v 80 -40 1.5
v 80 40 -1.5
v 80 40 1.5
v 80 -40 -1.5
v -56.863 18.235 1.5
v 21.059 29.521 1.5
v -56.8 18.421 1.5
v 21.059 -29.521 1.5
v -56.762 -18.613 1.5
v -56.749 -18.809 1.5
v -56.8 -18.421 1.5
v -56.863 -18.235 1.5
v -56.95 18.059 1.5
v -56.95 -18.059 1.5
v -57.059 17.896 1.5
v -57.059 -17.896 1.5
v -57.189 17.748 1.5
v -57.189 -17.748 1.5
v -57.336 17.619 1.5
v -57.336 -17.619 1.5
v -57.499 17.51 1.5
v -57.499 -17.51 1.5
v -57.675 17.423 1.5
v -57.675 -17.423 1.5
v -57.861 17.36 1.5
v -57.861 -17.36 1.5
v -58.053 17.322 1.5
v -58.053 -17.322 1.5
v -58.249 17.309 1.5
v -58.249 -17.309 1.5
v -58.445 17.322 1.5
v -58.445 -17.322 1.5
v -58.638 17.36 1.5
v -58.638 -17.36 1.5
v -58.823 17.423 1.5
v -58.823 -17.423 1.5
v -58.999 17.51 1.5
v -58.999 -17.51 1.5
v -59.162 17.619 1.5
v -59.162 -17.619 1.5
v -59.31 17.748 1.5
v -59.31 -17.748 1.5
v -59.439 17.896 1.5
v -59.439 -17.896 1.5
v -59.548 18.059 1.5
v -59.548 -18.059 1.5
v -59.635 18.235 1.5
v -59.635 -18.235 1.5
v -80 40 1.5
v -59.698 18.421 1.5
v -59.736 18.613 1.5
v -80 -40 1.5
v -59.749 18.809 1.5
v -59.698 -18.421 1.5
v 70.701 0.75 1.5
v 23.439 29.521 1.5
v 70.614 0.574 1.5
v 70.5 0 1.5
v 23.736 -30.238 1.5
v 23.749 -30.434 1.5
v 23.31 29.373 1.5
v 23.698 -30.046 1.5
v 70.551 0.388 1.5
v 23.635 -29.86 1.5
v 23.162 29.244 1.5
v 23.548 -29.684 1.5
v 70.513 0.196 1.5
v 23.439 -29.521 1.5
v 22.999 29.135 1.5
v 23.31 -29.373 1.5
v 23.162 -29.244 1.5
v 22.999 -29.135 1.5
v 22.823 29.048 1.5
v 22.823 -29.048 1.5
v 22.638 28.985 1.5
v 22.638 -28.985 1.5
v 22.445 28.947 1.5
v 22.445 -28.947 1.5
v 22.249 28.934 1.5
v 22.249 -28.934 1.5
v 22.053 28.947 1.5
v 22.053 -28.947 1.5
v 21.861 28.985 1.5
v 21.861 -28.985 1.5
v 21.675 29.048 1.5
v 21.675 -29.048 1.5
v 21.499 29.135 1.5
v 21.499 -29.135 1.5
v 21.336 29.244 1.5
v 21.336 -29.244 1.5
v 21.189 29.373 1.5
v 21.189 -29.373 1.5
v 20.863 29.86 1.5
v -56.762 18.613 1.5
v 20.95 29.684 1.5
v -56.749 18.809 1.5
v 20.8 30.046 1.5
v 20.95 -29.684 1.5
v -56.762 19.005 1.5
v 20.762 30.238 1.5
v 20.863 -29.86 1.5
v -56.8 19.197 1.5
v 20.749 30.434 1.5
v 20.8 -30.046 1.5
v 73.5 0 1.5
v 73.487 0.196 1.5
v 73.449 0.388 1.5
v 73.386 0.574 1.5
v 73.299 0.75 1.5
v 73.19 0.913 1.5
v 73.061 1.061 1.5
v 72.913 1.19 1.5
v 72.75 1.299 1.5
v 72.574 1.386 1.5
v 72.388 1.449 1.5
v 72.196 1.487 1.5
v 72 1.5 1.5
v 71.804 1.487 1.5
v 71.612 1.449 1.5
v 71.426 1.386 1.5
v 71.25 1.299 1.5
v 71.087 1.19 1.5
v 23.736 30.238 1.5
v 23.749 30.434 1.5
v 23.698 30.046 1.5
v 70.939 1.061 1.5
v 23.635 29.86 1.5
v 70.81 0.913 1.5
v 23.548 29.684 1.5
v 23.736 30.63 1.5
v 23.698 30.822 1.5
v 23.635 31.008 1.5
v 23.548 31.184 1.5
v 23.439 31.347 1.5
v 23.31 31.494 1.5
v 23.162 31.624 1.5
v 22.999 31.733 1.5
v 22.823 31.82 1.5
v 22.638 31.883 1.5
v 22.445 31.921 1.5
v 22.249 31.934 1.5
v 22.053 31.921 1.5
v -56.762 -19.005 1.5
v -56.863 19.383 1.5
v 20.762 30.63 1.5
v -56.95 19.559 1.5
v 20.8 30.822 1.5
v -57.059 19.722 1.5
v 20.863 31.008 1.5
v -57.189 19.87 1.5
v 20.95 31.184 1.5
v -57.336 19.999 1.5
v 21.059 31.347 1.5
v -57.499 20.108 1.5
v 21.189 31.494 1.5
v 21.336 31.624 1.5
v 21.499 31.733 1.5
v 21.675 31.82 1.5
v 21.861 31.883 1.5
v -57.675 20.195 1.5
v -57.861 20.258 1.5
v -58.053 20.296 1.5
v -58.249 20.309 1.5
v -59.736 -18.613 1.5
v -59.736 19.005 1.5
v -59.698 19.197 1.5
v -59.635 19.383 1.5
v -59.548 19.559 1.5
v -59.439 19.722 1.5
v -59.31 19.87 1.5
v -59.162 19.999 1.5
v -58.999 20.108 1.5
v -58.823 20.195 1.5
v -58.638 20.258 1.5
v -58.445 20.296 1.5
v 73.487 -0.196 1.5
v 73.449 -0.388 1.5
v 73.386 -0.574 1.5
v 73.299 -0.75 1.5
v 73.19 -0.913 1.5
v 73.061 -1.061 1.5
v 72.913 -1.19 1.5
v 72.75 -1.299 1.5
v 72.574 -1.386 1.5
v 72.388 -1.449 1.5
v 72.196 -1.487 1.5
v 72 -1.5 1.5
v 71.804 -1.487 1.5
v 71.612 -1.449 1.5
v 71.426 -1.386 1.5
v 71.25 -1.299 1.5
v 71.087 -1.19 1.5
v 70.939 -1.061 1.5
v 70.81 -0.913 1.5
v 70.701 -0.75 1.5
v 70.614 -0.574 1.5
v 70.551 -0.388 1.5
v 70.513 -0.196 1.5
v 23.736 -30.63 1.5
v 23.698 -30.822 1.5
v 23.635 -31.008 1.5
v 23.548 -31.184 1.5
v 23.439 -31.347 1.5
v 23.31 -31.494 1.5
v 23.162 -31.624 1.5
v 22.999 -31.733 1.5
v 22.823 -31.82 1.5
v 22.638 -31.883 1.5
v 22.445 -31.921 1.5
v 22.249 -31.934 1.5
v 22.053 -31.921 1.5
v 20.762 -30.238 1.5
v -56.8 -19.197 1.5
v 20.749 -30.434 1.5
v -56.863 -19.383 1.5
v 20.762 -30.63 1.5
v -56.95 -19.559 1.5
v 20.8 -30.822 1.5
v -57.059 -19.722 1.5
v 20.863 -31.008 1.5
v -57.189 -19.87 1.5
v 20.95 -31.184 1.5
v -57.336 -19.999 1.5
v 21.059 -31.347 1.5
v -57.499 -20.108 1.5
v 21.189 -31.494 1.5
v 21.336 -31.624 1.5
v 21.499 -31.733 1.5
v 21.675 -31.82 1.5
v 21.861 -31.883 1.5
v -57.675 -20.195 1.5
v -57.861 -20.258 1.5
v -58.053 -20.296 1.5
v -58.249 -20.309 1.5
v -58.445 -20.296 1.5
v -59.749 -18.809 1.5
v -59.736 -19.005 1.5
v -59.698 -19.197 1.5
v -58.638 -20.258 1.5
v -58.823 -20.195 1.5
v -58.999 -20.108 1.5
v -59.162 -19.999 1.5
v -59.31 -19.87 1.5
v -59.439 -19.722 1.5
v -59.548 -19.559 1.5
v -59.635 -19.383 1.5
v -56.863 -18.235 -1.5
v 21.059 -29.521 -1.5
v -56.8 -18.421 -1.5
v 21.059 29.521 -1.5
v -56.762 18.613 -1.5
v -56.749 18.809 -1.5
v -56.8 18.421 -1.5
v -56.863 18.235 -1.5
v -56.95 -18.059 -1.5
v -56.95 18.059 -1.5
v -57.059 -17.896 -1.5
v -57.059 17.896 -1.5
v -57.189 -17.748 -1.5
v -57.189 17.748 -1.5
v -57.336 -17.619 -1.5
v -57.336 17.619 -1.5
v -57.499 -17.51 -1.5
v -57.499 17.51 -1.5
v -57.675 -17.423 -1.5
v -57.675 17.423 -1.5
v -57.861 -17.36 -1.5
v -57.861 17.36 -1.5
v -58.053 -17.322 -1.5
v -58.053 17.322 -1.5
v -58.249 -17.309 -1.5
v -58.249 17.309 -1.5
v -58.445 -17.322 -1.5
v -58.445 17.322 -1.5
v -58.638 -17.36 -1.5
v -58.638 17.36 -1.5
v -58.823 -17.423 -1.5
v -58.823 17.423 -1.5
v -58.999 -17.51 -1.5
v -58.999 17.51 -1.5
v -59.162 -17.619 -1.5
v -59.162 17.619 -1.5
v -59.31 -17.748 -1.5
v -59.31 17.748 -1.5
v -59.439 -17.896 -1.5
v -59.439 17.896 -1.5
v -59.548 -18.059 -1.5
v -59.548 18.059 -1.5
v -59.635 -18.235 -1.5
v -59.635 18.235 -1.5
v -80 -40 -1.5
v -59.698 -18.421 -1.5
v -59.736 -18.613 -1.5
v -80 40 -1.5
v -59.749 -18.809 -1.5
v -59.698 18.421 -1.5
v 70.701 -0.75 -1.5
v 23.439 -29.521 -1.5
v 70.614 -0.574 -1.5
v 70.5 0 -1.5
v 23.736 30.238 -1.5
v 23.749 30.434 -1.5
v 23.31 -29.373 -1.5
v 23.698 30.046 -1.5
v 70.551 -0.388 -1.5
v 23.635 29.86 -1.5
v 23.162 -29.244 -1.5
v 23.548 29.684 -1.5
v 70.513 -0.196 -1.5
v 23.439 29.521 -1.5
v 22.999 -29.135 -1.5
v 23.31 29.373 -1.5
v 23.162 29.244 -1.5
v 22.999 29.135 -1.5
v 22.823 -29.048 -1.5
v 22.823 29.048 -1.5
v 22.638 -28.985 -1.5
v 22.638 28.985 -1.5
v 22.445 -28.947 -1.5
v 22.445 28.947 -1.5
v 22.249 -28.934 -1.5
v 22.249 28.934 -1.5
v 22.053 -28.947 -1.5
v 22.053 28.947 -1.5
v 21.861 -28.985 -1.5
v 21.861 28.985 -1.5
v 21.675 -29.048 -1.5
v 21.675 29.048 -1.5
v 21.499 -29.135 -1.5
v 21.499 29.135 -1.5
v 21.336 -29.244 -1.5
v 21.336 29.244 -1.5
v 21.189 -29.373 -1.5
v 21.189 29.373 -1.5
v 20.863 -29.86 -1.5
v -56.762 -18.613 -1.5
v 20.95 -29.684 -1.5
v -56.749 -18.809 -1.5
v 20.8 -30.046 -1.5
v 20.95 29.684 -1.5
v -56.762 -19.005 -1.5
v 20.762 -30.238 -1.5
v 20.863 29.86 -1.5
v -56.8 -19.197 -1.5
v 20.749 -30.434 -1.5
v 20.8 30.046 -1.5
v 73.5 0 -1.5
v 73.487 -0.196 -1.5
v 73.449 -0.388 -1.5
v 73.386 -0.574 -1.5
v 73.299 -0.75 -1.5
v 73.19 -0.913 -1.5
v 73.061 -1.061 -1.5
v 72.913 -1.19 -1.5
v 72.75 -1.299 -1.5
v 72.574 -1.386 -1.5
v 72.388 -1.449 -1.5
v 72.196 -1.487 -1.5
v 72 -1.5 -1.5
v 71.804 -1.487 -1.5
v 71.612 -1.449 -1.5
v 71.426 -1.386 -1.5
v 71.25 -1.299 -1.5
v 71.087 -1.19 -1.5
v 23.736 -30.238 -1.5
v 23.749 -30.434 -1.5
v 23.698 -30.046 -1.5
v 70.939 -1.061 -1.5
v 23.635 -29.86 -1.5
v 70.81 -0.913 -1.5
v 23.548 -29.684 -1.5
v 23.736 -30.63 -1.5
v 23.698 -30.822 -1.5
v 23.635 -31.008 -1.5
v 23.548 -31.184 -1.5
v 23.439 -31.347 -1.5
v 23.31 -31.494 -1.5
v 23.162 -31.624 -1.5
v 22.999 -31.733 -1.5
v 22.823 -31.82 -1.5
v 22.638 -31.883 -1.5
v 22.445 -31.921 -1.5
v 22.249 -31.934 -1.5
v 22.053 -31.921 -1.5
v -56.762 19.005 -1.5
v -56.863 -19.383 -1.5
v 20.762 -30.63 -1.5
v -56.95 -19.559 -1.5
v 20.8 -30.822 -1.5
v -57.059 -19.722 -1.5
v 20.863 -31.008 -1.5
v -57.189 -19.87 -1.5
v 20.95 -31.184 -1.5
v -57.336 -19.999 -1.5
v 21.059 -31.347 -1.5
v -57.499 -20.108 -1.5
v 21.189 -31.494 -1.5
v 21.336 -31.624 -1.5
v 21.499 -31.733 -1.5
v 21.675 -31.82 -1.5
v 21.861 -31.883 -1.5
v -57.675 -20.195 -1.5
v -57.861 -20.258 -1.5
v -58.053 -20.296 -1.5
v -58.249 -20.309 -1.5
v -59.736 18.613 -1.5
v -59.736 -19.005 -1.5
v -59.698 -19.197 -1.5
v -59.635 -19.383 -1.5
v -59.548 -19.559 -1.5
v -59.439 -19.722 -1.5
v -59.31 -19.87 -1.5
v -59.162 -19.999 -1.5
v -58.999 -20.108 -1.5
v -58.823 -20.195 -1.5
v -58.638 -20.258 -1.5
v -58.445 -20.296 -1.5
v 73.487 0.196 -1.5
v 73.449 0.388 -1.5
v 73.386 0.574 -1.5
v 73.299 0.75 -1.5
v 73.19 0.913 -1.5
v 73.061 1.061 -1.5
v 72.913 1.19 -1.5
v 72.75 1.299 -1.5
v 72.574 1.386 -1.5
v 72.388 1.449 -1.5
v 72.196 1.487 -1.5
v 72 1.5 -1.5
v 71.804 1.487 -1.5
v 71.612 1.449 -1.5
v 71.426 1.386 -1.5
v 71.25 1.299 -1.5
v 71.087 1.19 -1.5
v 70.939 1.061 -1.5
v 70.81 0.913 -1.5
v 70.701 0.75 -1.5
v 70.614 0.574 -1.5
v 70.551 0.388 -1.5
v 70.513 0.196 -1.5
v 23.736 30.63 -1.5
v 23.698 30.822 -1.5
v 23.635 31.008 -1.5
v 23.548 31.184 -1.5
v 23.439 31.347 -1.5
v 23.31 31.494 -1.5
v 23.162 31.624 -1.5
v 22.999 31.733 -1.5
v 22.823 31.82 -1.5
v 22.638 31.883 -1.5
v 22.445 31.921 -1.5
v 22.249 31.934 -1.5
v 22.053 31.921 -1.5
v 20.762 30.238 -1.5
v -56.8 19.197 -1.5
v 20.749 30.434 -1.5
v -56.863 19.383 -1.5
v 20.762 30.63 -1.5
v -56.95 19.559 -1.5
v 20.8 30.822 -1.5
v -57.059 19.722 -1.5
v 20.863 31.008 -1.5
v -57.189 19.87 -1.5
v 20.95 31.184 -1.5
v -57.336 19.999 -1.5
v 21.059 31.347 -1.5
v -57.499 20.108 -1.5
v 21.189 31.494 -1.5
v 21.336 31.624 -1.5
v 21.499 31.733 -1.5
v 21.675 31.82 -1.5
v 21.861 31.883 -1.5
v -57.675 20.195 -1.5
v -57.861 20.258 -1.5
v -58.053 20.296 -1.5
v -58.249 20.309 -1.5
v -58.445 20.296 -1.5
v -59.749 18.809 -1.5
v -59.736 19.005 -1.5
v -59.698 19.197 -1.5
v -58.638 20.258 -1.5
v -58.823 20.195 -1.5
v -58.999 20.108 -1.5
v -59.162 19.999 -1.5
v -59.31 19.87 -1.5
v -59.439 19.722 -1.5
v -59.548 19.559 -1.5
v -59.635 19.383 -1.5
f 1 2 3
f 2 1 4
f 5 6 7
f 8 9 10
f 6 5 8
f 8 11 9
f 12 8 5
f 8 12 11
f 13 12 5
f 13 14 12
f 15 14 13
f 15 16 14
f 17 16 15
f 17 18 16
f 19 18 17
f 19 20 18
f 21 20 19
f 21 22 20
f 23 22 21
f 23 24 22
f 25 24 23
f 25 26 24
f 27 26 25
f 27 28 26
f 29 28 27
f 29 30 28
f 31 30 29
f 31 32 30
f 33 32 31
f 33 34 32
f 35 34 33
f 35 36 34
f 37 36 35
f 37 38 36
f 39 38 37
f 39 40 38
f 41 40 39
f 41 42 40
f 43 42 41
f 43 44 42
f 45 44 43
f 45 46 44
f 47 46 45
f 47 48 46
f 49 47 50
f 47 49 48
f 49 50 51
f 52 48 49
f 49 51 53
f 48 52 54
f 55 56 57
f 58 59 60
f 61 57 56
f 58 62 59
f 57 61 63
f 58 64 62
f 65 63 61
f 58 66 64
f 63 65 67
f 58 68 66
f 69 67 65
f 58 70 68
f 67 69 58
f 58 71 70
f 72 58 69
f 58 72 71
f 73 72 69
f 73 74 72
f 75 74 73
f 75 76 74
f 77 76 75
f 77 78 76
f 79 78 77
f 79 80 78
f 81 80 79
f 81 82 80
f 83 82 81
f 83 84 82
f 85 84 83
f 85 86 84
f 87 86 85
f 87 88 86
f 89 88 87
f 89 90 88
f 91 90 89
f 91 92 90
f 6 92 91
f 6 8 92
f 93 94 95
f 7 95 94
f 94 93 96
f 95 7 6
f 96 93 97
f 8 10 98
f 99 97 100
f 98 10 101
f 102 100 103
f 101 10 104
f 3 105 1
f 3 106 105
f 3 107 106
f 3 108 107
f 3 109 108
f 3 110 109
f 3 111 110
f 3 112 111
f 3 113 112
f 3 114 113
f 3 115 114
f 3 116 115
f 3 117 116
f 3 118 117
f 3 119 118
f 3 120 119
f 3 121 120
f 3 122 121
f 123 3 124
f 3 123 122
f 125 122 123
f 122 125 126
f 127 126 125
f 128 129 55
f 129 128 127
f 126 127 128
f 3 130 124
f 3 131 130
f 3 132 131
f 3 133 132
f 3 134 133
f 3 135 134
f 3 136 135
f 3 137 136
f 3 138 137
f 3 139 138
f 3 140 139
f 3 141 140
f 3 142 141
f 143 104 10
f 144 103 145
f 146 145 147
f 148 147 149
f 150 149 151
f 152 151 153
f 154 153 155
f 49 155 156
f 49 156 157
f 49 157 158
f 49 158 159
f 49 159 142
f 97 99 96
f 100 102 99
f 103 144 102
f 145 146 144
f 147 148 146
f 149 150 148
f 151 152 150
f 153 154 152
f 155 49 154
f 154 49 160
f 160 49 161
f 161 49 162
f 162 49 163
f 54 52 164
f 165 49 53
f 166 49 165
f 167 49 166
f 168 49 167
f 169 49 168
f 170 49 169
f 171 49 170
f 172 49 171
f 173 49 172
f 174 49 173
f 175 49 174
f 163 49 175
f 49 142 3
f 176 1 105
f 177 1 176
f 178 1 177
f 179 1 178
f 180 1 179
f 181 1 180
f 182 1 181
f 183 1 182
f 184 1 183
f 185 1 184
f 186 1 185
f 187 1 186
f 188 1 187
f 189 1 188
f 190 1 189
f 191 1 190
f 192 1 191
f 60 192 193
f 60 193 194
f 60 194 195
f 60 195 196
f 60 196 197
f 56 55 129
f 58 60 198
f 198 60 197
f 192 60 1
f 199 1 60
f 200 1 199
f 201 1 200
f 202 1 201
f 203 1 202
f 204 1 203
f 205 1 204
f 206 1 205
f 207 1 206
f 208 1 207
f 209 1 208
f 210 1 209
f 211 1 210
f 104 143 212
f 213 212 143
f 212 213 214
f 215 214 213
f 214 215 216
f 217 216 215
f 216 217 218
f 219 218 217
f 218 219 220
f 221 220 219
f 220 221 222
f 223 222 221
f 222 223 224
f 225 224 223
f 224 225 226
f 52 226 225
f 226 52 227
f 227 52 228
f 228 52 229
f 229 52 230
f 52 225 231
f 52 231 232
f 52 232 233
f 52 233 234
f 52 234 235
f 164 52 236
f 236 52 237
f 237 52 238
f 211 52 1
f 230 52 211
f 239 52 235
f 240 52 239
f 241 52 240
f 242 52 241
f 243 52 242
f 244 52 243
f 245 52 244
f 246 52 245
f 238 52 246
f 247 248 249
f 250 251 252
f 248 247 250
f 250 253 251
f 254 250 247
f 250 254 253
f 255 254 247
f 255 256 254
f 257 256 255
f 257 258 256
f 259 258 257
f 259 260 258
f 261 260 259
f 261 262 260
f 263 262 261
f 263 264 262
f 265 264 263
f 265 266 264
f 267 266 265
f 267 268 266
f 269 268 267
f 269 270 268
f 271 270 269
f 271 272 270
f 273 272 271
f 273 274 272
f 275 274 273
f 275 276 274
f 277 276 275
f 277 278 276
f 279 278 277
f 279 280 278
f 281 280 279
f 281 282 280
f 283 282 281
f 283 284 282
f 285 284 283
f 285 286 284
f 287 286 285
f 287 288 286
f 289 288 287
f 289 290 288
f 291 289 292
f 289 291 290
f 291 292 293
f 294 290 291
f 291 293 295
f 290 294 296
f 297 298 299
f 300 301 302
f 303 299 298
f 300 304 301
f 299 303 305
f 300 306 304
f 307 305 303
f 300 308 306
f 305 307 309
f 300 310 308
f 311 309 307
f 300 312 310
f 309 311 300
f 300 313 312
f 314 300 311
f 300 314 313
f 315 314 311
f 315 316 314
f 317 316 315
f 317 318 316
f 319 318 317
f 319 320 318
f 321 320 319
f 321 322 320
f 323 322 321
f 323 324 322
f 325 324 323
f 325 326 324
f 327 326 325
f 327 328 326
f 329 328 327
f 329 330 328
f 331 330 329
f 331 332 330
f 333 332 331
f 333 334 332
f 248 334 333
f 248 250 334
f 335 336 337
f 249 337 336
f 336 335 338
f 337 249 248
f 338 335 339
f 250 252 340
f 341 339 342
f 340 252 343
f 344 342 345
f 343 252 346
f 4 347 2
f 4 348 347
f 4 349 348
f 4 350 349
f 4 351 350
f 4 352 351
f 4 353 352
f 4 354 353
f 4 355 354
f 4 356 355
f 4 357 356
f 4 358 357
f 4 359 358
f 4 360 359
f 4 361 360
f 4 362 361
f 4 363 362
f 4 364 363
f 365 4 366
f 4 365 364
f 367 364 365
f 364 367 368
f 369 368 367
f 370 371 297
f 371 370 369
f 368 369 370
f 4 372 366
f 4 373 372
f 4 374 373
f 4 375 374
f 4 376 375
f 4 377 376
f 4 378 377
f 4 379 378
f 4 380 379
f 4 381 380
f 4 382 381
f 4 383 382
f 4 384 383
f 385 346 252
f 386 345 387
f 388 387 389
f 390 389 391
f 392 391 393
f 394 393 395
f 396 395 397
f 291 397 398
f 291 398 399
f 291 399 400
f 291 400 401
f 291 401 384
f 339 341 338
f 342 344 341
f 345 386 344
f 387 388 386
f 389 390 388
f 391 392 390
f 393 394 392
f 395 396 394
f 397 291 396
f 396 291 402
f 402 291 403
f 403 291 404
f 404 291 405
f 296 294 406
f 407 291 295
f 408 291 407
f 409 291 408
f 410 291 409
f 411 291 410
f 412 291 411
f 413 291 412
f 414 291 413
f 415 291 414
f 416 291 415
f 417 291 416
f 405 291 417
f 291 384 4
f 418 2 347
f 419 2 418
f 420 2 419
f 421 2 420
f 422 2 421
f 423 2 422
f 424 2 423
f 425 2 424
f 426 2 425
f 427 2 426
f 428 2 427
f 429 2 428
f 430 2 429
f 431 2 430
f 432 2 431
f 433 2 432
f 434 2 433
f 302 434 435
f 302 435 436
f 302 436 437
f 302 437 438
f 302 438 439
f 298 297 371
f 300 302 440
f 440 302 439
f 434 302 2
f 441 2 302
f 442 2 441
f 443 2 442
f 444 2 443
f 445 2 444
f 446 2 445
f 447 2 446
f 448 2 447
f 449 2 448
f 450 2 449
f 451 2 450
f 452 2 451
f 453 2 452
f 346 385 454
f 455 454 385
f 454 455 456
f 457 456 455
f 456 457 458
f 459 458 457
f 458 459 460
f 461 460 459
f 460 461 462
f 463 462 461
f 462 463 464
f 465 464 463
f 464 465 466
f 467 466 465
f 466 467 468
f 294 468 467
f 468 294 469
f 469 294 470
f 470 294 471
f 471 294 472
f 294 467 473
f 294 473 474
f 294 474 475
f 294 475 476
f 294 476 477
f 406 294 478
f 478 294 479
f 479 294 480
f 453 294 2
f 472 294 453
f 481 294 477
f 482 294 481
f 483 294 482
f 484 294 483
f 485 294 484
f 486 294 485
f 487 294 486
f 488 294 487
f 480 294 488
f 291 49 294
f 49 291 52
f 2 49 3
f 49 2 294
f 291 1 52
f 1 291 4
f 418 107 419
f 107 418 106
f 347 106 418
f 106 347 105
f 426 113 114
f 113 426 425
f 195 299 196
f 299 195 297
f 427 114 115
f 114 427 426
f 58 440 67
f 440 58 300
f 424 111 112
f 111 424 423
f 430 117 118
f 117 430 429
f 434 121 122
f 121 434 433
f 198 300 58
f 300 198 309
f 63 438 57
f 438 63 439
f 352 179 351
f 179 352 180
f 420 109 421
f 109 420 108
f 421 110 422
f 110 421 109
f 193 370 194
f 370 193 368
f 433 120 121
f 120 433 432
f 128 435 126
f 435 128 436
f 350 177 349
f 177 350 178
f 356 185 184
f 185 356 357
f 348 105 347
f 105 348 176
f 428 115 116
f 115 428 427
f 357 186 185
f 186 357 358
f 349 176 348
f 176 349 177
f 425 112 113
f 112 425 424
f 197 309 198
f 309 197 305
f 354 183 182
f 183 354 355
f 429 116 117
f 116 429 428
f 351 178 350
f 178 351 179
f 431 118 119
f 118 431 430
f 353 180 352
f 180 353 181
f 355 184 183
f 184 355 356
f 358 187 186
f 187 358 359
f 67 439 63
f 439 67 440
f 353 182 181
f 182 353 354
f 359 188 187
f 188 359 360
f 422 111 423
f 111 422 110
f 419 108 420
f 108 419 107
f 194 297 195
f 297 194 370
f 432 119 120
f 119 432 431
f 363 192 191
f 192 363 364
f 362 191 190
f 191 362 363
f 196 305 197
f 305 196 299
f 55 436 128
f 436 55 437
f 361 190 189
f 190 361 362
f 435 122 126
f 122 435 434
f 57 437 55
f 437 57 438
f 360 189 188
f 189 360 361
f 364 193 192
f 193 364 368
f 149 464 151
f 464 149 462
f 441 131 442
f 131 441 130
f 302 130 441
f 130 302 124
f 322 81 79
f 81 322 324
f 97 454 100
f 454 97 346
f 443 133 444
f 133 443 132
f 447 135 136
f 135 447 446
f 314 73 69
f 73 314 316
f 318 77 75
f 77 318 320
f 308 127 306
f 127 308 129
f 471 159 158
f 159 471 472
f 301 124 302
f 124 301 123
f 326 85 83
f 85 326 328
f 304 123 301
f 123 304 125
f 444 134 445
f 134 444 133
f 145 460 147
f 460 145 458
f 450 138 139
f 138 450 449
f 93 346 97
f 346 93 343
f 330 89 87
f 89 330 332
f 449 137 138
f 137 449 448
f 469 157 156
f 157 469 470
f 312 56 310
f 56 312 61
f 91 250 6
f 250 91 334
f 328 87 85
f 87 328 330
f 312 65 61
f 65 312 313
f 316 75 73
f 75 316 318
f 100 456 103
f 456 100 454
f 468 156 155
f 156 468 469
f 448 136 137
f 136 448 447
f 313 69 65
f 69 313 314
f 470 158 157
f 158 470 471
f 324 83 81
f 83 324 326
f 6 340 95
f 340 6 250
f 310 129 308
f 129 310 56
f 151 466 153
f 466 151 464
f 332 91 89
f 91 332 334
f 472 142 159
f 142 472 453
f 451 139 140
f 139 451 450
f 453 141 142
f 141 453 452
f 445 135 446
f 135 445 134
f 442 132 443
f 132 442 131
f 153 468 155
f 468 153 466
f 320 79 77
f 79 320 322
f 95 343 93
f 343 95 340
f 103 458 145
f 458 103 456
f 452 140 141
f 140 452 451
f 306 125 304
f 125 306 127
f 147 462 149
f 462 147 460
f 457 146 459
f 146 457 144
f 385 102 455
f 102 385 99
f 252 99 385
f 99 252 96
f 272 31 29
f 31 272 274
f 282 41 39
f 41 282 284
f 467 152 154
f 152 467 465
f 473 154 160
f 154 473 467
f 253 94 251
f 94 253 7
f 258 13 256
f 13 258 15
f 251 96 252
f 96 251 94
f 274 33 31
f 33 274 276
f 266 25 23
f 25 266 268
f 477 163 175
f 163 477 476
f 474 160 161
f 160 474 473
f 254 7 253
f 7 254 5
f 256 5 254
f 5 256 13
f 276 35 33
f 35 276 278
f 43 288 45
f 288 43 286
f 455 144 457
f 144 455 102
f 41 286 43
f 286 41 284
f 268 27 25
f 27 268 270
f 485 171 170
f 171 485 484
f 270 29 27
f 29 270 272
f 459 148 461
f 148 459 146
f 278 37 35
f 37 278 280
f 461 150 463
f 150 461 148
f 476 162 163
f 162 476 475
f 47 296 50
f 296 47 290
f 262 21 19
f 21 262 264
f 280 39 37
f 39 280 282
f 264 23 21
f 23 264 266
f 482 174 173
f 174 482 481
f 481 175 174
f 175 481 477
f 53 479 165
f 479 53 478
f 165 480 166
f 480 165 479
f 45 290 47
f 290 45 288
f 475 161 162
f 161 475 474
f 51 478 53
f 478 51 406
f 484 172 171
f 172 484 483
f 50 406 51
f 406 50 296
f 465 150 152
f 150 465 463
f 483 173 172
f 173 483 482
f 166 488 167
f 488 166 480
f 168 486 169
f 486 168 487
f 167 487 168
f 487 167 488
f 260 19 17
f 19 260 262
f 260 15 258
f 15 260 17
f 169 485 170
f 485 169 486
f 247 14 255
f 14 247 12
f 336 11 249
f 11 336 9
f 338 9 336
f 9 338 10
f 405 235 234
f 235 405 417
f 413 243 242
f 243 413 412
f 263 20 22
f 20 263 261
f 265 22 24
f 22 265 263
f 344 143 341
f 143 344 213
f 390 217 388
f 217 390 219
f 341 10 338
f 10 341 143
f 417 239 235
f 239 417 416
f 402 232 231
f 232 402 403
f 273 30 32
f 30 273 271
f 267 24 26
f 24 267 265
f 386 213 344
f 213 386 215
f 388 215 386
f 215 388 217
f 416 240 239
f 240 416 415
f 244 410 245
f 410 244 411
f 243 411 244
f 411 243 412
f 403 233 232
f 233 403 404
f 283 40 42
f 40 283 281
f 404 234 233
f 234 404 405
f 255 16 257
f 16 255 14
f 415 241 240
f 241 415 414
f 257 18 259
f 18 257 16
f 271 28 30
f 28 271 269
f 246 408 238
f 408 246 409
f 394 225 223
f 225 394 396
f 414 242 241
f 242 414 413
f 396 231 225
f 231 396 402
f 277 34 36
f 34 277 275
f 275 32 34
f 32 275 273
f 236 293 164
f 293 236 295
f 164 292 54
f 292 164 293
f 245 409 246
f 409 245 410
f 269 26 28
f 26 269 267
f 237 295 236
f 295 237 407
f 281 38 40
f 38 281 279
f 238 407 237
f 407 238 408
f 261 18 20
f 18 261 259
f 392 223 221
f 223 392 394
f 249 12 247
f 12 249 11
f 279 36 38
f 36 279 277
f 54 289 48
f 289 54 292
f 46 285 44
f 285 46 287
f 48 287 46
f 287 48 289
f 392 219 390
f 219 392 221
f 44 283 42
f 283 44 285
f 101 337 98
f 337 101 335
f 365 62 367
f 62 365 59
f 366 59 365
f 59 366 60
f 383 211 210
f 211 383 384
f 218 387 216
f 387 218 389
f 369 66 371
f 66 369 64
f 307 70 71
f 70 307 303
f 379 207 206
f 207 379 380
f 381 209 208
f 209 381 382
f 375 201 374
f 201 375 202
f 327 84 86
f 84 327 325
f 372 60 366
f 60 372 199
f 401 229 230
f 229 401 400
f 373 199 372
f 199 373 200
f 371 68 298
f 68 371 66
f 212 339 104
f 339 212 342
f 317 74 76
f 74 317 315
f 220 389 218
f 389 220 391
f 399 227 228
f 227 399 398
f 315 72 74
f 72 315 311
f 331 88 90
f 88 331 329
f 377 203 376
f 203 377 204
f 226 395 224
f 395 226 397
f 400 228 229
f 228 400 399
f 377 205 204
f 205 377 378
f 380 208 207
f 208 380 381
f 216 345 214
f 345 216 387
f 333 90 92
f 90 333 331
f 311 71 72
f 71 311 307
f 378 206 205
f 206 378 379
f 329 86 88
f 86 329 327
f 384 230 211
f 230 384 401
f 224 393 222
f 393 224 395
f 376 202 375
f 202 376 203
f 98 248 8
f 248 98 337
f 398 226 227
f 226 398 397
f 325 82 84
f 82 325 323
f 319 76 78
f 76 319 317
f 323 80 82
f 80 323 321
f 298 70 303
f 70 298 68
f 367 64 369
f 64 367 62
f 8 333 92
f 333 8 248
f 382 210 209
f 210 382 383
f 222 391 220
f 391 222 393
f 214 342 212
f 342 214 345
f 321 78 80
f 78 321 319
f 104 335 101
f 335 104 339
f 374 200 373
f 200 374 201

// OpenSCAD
// ========================================
// a 16 x 8 x 0.3 cm plate with five 0.3 cm holes
// NeuroCAD canonical IR; dimensions are millimetres
// ========================================
$fn = 48;

difference() {
  cube(size=[160, 80, 3], center=true);
  translate([72, 0, 0]) {
    cylinder(r=1.5, h=5, center=true);
  }
  translate([22.2492235949962, 30.4338085214449, 0]) {
    cylinder(r=1.5, h=5, center=true);
  }
  translate([-58.2492235949962, 18.8091280733591, 0]) {
    cylinder(r=1.5, h=5, center=true);
  }
  translate([-58.2492235949962, -18.8091280733591, 0]) {
    cylinder(r=1.5, h=5, center=true);
  }
  translate([22.2492235949962, -30.4338085214449, 0]) {
    cylinder(r=1.5, h=5, center=true);
  }
}
